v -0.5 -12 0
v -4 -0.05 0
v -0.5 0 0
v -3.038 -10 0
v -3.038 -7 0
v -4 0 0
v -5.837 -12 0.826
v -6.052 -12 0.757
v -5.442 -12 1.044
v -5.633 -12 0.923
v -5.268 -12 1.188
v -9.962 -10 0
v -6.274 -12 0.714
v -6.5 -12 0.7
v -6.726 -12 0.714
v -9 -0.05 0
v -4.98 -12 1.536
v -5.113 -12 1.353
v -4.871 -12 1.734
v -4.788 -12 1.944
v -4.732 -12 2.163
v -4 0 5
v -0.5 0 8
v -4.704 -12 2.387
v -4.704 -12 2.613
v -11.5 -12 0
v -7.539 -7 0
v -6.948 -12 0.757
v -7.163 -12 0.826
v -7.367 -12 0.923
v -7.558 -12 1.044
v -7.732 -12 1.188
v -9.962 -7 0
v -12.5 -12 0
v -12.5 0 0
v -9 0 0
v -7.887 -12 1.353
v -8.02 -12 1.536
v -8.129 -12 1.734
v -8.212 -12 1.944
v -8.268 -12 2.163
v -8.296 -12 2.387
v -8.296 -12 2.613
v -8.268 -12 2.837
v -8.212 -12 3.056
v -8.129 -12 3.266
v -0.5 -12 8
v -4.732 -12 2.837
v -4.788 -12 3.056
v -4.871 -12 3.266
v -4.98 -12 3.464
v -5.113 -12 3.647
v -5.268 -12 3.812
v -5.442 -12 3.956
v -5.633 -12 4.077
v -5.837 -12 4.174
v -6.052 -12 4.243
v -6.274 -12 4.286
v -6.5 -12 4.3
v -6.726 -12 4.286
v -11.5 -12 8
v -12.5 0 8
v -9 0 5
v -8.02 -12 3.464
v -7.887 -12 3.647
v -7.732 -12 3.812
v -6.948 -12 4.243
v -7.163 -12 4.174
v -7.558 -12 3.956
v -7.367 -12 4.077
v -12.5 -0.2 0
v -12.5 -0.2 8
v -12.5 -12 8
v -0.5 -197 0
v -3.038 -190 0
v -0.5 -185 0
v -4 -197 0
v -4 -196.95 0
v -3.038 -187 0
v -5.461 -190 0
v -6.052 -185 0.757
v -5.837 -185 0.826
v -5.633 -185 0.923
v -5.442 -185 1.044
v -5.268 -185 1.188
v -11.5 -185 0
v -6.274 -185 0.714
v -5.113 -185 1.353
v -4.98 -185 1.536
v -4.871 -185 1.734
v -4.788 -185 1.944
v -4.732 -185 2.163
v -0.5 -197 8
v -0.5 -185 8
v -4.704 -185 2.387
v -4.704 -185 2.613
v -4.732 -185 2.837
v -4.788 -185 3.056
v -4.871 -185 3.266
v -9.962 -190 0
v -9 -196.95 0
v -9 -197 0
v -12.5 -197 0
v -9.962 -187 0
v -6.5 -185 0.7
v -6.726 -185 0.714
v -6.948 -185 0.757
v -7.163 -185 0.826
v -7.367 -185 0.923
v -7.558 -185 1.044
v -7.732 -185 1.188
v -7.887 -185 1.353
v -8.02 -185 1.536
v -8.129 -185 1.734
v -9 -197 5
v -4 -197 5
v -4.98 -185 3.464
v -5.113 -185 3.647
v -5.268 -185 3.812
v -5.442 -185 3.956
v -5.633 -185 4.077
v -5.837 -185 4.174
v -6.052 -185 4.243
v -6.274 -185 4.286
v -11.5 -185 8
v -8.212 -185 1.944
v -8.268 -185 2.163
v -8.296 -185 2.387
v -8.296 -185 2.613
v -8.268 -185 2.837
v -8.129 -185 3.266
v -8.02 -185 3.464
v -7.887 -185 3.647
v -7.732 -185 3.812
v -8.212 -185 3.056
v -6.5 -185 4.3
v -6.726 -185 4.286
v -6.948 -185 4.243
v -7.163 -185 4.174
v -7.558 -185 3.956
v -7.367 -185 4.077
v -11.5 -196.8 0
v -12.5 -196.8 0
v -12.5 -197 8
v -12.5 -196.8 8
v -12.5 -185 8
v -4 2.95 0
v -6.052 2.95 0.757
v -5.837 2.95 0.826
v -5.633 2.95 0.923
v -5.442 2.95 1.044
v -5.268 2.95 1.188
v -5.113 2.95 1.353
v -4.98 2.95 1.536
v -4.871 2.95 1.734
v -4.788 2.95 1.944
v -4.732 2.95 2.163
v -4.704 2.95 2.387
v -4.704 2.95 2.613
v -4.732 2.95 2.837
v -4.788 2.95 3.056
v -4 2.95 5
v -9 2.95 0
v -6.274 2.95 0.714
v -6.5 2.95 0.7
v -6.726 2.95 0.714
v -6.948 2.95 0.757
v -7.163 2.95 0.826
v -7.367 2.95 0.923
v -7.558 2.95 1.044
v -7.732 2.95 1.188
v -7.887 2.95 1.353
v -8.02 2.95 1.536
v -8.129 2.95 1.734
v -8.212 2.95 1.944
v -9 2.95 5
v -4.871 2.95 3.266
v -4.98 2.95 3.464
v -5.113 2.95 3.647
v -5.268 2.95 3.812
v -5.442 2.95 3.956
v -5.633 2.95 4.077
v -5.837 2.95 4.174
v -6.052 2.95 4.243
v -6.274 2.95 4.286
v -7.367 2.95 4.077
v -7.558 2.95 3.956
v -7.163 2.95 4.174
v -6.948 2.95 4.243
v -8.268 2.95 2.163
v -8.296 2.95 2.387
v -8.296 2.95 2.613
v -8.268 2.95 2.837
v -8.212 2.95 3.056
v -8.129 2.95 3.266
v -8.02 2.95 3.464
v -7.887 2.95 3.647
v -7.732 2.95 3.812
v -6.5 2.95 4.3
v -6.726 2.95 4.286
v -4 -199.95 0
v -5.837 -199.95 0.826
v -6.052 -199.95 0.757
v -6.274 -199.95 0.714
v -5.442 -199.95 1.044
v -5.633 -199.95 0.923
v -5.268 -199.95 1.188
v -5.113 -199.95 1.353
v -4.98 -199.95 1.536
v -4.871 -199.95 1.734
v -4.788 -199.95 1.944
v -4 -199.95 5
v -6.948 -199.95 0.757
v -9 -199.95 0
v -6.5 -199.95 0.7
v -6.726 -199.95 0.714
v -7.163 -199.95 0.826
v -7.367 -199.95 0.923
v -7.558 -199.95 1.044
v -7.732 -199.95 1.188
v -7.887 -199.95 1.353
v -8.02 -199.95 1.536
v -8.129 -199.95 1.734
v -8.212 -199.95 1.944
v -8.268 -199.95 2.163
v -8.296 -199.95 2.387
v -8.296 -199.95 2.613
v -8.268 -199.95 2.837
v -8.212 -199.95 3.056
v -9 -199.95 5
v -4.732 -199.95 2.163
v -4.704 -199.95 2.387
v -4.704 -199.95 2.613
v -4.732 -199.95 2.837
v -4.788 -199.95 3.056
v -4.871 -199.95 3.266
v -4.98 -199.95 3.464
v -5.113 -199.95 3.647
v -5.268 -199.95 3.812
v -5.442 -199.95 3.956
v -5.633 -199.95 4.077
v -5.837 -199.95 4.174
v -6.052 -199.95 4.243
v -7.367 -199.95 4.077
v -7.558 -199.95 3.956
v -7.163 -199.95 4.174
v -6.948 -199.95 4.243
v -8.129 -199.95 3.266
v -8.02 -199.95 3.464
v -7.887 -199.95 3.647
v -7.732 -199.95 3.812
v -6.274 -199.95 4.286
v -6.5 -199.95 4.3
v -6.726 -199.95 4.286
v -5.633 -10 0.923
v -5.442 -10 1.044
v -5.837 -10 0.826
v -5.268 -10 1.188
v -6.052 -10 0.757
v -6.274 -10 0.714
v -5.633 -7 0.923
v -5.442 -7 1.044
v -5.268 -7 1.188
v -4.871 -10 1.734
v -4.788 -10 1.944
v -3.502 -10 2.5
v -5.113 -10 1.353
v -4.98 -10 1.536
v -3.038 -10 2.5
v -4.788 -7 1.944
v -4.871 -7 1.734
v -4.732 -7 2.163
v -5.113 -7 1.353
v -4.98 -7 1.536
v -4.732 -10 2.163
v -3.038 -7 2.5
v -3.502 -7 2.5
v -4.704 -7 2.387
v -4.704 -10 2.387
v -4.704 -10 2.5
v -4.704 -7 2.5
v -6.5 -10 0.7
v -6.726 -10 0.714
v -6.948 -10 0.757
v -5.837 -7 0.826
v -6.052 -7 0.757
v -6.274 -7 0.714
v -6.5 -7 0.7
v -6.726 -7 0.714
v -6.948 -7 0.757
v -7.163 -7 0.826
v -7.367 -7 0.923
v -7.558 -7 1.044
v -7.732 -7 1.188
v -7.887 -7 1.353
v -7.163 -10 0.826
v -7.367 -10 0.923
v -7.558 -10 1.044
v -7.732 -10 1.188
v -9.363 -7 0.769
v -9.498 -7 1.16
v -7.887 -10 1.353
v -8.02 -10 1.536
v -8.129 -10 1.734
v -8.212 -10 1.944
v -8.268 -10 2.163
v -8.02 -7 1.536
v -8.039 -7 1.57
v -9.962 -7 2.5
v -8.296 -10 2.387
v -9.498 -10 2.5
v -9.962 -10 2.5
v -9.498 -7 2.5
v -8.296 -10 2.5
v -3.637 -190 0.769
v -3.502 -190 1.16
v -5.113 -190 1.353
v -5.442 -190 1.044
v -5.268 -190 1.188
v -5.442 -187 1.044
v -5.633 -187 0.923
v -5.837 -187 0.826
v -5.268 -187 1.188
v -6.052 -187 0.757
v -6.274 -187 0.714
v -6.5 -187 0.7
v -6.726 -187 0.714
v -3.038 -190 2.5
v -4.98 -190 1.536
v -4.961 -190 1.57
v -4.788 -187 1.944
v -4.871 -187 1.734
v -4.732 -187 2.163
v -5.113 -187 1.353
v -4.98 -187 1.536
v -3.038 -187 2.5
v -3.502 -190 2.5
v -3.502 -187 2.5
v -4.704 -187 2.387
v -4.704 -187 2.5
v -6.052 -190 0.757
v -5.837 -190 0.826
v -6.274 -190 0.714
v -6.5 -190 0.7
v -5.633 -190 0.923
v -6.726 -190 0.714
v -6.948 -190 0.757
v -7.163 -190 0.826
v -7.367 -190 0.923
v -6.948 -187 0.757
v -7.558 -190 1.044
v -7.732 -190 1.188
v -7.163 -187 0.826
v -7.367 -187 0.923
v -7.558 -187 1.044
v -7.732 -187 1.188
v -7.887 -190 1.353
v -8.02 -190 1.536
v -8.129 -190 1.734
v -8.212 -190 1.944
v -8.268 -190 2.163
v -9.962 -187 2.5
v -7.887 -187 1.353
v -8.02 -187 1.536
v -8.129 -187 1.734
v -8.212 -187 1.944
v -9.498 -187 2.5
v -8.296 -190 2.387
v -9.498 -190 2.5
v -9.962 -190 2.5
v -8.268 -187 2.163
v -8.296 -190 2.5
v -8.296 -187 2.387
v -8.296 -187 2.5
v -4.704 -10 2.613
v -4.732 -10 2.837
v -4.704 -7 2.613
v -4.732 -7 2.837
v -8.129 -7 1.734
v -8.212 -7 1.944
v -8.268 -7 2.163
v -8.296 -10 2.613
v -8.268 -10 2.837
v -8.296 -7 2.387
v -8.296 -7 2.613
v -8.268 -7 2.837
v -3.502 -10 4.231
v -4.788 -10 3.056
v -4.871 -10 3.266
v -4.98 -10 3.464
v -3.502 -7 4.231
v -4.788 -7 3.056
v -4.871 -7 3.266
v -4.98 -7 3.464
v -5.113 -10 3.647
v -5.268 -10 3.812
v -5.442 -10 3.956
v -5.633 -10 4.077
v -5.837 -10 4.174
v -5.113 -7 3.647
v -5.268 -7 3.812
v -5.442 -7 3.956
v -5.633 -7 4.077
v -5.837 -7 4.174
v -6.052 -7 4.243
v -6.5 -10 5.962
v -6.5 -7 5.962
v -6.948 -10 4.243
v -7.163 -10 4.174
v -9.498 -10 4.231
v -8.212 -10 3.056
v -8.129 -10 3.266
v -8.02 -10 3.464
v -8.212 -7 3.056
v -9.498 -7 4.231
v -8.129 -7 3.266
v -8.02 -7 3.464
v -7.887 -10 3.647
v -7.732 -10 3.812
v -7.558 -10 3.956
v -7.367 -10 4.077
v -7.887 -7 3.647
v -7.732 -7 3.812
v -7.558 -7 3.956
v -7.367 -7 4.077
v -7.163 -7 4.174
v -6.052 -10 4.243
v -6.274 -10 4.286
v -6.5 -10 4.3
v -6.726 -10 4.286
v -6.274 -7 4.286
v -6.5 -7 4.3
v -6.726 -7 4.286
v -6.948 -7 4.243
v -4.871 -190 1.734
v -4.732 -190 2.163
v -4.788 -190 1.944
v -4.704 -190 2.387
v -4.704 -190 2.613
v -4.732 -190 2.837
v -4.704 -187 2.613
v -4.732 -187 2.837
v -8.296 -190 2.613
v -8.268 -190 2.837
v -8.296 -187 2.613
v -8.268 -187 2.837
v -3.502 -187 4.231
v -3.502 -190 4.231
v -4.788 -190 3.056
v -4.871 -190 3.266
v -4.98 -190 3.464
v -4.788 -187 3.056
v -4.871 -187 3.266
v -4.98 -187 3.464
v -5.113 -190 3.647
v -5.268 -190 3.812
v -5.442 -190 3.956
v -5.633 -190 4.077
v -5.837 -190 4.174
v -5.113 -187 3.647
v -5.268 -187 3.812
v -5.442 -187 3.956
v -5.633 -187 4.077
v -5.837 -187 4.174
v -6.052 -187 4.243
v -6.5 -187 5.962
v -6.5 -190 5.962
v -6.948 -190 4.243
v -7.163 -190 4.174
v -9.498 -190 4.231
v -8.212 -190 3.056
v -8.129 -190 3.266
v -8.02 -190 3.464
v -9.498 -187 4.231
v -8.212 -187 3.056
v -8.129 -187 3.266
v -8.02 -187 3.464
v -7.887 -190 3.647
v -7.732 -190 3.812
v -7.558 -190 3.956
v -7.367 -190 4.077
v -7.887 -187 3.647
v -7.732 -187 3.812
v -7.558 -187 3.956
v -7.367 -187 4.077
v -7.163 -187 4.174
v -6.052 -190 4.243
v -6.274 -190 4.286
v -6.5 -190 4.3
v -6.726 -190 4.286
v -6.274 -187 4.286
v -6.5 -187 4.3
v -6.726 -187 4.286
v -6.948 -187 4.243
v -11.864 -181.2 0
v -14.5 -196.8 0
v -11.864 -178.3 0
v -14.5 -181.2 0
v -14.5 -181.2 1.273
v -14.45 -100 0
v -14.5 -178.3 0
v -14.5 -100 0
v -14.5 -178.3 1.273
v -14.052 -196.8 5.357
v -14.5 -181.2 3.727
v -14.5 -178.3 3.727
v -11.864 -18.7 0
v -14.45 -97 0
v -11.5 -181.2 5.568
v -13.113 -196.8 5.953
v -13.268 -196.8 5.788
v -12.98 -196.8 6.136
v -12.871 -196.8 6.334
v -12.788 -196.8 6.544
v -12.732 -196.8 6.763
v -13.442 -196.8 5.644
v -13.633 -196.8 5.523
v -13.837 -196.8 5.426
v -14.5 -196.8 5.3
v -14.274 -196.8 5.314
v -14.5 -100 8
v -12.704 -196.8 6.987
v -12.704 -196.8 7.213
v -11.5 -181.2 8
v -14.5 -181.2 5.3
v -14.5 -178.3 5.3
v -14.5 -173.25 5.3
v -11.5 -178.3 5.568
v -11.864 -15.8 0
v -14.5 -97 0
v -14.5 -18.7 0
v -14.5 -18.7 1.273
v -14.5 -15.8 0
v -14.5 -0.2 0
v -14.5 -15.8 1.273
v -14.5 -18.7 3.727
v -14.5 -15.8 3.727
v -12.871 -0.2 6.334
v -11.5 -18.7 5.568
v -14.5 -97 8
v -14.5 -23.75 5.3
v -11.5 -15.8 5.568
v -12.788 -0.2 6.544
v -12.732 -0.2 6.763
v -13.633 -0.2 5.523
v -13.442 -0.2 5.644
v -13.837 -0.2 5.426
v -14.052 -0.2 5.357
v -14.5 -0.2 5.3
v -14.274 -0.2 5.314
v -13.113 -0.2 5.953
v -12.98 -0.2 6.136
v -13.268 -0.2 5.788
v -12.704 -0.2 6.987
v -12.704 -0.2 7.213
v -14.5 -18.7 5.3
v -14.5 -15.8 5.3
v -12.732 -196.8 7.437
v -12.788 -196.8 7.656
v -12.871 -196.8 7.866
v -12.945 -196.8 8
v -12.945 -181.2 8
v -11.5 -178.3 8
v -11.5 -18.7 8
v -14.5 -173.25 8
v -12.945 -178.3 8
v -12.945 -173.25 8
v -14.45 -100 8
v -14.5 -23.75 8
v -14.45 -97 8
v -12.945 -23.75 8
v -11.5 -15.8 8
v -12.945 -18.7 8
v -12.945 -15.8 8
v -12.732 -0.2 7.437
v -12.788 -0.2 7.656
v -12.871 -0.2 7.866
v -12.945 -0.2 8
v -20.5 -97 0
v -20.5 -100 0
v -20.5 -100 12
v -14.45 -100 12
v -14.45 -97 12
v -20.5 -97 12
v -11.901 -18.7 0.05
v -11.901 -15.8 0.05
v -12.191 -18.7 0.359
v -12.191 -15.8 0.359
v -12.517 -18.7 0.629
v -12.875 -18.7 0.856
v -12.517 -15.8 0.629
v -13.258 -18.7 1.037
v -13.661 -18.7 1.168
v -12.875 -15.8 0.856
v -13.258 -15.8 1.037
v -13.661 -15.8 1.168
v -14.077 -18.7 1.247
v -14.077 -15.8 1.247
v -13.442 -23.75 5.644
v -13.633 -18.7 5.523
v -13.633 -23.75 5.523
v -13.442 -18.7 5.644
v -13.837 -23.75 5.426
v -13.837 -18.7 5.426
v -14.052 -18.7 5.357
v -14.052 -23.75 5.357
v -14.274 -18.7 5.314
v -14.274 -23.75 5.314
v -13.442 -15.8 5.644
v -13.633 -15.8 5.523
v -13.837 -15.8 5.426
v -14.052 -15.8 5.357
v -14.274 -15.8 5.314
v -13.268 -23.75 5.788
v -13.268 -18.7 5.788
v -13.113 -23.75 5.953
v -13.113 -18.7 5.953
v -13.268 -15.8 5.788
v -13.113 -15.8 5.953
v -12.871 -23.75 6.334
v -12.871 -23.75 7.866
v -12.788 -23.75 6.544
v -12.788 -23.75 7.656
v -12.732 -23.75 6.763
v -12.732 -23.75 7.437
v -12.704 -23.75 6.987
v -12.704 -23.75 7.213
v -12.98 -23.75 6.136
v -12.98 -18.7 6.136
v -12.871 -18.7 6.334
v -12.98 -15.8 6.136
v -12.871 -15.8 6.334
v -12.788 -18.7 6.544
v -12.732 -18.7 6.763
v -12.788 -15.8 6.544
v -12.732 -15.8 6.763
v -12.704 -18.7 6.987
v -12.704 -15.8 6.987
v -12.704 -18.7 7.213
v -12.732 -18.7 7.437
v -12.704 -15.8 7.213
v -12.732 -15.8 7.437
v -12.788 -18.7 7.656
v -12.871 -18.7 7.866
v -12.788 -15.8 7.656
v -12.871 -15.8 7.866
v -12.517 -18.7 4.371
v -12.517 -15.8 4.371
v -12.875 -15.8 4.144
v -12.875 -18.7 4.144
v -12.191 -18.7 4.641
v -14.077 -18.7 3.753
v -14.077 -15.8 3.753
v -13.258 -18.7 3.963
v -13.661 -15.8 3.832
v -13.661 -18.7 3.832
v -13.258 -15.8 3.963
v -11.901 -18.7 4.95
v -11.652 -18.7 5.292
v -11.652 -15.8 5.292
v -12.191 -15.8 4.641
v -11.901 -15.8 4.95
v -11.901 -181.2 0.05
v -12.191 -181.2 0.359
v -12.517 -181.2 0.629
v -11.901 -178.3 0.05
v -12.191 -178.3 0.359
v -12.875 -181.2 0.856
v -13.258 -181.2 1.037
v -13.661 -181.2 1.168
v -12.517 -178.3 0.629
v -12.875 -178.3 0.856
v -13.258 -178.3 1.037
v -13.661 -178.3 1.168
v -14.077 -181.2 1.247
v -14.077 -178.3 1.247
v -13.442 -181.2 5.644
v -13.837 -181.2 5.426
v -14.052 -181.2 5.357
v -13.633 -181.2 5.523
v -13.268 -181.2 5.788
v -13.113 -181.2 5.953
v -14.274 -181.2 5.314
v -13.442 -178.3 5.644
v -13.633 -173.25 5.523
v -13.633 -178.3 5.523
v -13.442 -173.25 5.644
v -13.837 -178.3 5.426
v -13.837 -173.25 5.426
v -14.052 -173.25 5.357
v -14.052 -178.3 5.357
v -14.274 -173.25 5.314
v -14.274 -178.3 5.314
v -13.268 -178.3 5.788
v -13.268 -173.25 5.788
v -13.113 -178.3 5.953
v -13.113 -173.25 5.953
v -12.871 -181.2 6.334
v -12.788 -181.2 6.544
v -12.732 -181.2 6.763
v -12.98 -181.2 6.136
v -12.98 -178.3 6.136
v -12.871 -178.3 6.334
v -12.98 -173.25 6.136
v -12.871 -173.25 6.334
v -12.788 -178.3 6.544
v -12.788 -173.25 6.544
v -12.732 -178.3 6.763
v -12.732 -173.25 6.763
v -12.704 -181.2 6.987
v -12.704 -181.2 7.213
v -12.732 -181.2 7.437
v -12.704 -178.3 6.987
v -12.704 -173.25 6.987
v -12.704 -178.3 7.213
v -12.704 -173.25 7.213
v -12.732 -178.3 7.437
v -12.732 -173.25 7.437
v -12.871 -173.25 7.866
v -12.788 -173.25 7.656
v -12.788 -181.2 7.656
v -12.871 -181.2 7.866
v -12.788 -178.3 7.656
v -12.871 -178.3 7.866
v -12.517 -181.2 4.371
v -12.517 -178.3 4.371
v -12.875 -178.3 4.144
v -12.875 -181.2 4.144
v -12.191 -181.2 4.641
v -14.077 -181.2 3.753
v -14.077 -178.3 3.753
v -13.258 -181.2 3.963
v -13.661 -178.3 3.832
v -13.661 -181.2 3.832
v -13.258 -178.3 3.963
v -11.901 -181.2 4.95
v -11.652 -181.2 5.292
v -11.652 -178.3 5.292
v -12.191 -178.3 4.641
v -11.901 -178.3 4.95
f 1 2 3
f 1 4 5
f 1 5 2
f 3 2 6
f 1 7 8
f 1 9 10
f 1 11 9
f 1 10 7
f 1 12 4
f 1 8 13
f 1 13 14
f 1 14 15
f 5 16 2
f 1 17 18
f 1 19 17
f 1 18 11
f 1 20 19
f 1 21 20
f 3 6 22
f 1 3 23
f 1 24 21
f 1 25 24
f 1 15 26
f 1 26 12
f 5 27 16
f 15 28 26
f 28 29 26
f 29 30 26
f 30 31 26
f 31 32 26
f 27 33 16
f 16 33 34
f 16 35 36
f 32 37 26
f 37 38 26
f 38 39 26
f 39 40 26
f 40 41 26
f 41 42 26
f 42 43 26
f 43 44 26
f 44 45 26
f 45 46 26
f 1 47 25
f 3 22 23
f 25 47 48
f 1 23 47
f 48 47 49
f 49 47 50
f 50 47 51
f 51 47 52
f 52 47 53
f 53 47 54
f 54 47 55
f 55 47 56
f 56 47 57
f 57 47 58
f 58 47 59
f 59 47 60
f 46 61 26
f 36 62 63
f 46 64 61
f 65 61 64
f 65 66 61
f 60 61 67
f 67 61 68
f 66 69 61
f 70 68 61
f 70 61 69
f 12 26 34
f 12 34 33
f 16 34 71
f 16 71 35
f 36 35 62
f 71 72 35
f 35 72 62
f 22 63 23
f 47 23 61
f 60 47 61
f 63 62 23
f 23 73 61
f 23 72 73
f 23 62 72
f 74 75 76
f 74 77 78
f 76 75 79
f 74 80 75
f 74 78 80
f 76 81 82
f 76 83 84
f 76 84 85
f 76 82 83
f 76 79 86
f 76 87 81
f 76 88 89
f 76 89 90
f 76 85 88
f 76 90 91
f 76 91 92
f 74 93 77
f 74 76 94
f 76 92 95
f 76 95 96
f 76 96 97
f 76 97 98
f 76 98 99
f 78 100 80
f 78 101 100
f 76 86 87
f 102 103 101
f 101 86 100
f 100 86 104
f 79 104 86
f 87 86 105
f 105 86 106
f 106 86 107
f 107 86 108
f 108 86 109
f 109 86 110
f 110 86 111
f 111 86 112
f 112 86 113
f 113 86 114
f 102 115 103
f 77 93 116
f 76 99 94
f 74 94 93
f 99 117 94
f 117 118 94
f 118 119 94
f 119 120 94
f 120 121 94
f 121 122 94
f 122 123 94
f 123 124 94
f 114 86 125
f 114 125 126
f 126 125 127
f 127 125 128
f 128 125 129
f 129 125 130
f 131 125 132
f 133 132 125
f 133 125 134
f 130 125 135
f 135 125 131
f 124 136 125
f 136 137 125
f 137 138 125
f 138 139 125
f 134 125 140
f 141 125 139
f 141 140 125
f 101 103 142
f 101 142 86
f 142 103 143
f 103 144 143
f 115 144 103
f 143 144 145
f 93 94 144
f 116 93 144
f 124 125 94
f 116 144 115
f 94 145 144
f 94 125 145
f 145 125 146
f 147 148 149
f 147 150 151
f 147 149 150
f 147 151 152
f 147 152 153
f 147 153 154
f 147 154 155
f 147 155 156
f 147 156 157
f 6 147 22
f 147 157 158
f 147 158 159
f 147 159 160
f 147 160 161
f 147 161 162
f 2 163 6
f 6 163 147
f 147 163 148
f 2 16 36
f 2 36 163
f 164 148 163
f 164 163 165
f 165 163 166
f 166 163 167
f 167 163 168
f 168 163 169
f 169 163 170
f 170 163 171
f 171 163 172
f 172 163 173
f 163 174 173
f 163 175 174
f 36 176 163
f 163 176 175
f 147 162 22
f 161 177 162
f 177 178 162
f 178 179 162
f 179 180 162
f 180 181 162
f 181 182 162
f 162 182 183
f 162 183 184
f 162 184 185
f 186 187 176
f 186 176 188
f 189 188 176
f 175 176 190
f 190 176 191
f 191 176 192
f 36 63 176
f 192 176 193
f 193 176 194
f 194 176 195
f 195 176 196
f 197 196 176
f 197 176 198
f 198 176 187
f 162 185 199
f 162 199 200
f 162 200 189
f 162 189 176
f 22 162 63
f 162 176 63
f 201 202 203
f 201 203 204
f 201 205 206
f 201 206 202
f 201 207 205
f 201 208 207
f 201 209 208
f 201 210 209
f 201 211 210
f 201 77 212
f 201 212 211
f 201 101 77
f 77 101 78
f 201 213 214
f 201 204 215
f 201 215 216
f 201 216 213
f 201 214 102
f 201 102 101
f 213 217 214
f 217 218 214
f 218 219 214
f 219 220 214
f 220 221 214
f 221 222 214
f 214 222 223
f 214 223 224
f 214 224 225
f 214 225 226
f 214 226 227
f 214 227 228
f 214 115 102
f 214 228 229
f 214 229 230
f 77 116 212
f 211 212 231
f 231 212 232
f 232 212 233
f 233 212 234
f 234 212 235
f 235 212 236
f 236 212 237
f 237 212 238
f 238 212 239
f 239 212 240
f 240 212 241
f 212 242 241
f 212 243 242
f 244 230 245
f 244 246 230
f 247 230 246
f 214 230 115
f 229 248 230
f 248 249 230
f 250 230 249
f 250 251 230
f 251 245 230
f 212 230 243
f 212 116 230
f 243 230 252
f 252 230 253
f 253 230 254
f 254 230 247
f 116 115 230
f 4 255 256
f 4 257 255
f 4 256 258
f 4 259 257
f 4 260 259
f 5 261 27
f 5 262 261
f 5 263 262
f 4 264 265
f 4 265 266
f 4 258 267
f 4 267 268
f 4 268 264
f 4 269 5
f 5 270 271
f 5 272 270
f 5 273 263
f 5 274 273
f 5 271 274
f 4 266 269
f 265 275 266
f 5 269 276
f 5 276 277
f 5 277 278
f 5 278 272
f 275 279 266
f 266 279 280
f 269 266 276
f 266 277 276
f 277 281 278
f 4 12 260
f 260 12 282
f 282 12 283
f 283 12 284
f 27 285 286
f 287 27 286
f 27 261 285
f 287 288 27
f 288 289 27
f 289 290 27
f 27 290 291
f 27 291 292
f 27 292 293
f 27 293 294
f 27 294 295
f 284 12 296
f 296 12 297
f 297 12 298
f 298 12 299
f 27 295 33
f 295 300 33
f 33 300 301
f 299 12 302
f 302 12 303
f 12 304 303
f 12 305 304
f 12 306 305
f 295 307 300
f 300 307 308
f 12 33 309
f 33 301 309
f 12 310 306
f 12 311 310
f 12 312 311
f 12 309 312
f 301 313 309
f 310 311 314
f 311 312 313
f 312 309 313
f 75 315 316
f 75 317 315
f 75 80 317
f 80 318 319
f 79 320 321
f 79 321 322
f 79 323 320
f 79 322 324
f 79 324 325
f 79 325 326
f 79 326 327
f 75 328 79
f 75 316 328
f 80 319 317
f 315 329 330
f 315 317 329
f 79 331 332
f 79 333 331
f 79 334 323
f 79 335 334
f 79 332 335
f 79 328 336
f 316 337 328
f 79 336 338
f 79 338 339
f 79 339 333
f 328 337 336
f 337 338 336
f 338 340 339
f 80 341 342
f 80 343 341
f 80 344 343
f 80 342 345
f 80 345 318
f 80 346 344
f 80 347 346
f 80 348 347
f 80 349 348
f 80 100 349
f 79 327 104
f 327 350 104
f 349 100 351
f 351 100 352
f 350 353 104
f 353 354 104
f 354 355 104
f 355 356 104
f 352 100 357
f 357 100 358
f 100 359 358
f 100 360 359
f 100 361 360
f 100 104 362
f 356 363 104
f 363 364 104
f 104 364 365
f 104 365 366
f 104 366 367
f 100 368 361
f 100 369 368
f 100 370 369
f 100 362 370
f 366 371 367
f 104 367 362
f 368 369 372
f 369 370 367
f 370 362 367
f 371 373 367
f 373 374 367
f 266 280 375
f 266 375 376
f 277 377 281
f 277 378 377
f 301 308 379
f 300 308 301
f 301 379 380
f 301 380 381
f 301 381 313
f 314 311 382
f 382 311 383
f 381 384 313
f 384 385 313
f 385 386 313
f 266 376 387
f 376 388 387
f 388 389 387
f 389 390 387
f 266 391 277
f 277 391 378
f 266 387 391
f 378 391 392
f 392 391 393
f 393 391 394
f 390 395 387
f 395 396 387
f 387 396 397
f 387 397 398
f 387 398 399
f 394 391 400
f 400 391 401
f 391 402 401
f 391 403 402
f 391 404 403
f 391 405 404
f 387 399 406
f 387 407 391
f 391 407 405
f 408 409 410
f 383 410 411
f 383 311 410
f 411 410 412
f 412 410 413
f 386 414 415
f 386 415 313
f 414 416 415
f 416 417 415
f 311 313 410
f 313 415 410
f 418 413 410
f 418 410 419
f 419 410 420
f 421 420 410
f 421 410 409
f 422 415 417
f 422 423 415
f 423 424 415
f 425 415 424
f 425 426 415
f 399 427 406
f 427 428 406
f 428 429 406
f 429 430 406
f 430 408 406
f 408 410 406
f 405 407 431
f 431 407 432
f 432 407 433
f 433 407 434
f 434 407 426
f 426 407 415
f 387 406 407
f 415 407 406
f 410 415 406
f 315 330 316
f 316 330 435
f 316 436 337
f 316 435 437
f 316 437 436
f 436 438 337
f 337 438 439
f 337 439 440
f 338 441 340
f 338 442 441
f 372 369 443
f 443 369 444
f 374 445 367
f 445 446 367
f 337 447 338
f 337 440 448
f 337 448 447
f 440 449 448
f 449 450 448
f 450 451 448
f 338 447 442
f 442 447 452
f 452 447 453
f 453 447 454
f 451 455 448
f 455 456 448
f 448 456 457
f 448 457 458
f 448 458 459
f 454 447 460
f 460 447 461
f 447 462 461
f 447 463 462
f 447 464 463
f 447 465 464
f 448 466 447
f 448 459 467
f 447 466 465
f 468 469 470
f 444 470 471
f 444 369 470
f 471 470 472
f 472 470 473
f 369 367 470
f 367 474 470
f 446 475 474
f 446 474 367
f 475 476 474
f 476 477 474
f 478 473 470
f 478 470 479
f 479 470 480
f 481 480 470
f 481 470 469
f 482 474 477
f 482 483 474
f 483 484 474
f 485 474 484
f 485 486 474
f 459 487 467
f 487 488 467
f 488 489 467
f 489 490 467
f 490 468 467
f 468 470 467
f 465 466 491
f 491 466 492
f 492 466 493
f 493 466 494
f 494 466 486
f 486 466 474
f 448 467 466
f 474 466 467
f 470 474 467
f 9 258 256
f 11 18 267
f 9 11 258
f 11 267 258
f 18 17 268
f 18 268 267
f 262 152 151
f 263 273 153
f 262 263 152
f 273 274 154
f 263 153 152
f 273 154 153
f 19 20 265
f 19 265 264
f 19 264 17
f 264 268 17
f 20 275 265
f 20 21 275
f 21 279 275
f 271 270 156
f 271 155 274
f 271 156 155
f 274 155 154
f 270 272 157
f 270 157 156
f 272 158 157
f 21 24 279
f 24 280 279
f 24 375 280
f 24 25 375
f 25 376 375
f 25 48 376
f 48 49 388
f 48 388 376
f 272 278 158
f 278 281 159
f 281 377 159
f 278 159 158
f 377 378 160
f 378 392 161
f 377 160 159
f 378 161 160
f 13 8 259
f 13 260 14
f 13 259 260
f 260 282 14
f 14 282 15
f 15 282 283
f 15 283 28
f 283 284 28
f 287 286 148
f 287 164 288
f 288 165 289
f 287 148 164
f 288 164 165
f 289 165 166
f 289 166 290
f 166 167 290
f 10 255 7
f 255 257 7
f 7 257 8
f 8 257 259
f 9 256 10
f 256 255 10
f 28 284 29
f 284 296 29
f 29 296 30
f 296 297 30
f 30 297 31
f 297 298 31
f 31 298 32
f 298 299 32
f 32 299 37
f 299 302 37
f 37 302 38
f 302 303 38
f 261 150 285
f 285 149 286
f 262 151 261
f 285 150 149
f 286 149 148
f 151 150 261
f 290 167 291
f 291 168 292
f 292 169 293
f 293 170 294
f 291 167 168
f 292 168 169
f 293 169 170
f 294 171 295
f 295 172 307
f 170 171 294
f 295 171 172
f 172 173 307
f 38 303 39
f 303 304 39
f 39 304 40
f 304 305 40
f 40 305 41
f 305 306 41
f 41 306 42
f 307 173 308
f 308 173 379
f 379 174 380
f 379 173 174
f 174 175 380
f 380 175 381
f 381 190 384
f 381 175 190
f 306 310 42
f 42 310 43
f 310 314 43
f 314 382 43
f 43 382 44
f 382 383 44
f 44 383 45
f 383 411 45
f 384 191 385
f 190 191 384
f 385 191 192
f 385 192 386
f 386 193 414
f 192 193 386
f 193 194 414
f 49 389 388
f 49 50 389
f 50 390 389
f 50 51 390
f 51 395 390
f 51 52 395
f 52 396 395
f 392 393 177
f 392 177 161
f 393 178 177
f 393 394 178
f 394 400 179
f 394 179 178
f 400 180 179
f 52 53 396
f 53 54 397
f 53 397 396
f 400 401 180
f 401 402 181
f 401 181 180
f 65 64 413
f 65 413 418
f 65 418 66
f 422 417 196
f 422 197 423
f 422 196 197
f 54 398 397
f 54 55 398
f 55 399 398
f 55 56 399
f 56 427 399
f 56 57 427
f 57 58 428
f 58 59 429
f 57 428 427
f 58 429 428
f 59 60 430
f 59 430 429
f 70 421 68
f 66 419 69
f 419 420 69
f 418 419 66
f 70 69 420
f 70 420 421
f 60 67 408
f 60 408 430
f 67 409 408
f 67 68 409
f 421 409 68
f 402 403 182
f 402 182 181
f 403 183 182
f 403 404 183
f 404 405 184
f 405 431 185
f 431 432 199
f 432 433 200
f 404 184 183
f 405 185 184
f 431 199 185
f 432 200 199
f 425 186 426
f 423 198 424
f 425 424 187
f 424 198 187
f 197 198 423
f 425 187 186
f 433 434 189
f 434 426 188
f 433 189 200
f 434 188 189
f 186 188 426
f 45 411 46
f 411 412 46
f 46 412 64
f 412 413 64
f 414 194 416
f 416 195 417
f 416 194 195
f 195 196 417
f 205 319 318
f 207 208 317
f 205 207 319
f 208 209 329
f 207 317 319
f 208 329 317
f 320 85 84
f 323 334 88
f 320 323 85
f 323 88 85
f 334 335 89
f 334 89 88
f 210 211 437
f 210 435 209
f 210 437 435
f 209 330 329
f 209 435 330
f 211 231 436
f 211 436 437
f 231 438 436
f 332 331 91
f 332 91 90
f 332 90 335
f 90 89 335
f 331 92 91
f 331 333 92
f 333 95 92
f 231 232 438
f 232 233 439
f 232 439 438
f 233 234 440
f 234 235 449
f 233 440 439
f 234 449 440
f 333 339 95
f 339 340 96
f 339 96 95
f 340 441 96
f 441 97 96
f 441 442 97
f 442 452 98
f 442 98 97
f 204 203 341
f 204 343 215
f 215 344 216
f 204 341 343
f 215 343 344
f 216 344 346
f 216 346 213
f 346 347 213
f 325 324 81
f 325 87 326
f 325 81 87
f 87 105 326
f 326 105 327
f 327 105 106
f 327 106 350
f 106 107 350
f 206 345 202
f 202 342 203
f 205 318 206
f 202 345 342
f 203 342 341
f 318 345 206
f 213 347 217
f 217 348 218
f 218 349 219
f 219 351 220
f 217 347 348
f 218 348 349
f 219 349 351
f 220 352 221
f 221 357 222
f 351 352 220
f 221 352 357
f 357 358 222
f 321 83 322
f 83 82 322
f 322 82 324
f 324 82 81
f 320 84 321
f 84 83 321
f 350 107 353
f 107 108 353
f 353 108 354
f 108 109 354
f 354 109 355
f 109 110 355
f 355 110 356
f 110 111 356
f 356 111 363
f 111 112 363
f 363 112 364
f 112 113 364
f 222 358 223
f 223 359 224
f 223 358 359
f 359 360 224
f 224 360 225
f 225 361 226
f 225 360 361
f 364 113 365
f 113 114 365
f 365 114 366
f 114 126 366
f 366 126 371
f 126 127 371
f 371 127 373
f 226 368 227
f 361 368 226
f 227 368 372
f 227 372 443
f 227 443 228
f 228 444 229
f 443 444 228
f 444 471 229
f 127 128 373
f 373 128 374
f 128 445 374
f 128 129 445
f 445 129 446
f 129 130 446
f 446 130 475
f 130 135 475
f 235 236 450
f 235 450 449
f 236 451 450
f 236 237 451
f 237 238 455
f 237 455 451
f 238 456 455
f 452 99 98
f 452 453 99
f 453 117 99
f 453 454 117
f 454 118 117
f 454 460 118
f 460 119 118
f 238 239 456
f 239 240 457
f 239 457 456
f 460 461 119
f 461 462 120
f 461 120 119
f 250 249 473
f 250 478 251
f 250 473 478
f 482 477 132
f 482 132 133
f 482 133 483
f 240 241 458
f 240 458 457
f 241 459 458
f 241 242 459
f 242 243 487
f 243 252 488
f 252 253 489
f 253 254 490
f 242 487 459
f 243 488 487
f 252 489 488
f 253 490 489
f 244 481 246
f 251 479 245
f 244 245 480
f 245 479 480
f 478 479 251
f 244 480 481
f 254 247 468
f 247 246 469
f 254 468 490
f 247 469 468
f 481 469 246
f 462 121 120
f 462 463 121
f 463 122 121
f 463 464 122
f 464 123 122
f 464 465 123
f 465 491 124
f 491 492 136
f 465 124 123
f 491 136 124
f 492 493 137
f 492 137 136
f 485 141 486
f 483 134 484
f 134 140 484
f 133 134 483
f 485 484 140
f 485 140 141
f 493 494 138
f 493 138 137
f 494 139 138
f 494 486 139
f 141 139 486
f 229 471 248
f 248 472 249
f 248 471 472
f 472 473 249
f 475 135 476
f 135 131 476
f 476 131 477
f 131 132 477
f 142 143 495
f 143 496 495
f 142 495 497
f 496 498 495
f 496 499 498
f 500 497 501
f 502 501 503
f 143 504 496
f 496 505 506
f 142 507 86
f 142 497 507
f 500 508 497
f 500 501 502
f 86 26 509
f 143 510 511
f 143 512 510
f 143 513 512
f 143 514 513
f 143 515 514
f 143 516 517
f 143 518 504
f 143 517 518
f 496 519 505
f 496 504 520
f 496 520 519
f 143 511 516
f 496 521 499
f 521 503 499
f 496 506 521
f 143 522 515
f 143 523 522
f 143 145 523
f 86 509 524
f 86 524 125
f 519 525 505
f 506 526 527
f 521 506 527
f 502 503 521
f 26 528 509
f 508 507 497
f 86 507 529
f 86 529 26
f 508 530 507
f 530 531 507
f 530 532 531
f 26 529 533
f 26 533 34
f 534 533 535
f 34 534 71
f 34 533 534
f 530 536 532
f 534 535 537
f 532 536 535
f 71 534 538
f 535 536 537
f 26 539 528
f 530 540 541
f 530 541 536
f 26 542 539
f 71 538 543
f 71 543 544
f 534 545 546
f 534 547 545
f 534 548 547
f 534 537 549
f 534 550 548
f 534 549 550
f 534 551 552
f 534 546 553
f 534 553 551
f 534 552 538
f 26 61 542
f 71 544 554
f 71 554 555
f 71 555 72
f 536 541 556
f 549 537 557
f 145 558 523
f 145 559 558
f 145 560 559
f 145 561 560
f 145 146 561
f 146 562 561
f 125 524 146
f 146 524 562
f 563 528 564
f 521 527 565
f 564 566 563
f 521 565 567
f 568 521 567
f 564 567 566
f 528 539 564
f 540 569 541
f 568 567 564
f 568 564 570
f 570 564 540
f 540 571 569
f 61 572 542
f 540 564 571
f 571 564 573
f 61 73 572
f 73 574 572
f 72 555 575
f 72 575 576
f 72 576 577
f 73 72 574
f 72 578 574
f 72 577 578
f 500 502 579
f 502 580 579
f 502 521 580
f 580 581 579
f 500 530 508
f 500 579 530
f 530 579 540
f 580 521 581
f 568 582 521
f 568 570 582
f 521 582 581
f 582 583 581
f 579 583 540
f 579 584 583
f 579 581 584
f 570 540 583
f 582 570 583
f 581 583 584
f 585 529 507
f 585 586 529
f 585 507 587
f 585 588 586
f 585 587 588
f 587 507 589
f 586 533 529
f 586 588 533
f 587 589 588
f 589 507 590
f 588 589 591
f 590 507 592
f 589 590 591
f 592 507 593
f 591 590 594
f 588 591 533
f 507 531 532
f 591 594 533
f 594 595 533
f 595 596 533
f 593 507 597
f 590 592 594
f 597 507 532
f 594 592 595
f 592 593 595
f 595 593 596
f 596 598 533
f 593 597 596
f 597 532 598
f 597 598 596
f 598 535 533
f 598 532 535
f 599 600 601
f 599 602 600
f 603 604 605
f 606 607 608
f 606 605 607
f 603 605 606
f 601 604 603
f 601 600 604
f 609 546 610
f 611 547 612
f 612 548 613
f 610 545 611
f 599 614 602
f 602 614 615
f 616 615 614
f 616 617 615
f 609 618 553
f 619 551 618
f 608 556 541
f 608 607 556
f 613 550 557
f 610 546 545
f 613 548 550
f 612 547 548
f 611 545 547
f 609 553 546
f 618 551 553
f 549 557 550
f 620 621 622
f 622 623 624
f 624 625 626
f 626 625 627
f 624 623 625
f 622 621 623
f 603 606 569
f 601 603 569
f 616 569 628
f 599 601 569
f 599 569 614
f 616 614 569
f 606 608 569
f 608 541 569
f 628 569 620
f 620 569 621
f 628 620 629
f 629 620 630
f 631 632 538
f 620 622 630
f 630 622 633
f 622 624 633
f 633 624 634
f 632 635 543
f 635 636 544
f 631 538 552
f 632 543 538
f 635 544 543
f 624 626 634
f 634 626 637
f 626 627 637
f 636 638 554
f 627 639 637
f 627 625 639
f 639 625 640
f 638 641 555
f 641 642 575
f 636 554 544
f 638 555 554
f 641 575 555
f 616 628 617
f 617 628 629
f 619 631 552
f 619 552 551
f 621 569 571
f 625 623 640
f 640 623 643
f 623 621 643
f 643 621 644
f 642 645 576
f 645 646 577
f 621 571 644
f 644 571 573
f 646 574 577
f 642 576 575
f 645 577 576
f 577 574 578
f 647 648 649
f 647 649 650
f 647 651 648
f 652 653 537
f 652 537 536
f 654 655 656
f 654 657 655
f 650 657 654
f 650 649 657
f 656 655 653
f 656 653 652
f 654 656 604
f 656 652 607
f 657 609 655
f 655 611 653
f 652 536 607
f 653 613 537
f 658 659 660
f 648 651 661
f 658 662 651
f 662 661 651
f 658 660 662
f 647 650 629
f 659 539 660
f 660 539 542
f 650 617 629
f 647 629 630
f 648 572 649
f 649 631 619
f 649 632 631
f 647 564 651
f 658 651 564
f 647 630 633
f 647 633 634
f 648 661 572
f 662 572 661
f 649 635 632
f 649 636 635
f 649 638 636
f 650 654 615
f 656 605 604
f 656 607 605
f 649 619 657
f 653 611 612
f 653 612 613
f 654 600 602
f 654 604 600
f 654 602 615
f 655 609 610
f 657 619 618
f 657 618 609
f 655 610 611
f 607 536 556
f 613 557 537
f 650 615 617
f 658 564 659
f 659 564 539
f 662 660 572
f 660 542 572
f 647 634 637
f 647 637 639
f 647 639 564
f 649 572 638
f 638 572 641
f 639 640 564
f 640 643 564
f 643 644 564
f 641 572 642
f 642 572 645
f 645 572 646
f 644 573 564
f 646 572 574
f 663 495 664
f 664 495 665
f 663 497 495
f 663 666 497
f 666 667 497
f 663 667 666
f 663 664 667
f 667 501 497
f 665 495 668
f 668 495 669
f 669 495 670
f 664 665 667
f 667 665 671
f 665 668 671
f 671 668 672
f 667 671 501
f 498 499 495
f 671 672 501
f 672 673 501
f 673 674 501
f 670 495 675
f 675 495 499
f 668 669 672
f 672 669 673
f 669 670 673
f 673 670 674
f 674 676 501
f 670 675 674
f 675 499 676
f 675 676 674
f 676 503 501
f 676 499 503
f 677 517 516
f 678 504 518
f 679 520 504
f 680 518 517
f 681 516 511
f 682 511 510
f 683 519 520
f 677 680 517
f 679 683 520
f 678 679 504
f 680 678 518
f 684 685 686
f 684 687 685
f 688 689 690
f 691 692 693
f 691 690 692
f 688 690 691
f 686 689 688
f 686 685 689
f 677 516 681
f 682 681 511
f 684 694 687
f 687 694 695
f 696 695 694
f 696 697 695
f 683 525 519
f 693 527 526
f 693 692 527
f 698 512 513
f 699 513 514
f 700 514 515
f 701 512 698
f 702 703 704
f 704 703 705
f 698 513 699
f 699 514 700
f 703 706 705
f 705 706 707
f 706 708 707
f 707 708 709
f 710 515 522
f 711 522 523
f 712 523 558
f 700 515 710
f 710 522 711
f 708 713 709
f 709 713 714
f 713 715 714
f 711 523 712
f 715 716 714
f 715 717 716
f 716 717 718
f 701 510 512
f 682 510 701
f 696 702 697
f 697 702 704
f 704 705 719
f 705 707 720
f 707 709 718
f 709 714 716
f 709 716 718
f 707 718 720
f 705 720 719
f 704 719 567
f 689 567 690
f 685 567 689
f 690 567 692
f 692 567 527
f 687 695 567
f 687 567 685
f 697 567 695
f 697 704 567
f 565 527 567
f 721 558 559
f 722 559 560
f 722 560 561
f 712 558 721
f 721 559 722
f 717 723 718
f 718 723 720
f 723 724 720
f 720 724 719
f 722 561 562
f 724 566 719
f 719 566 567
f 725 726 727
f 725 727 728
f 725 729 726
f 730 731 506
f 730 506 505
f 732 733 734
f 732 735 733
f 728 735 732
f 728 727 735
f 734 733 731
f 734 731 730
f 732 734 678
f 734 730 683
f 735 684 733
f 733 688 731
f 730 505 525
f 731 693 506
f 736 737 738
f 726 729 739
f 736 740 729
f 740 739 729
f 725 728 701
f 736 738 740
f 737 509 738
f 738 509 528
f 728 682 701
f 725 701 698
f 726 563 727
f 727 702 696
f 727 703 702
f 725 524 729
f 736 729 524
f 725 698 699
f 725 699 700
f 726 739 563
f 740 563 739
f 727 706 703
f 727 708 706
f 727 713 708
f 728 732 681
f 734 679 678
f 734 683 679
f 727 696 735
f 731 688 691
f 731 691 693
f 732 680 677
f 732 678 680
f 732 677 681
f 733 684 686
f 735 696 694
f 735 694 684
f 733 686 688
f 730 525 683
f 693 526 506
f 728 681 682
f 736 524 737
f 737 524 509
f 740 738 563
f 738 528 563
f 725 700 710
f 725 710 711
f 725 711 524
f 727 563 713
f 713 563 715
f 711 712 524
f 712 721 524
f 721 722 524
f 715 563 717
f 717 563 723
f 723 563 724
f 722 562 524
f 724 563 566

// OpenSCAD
$fn = 50;

difference() {
	union() {
		translate(v = [0, 0, 0]) {
			rotate(a = [0, 0, 0]) {
				difference() {
					union() {
						translate(v = [0, 0, 2.5]) {
							rotate(a = [0, -90, 0]) {
								difference() {
									union() {
										translate(v = [0, 0, 0]) {
											rotate(a = [0, 0, 0]) {
												difference() {
													union() {
														translate(v = [-2.5, -12.0, 0.5]) {
															cube(size = [8.0, 12.0, 12.0]);
														}
														translate(v = [-2.5, -0.05, 4.0]) {
															cube(size = [5.0, 3.0, 5.0]);
														}
													}
													union() {
														translate(v = [0, -7.0, 6.5]) {
															rotate(a = [90, 0, 0]) {
																difference() {
																	union() {
																		translate(v = [-20.0, -3.4619999999999997, 0]) {
																			cube(size = [20, 6.9239999999999995, 3]);
																		}
																		linear_extrude(height = 3) {
																			polygon(points = [[3.4619999999999997, 0.0], [1.7310000000000003, 2.9981799479017264], [-1.7309999999999992, 2.9981799479017264], [-3.4619999999999997, 4.2397272186481365e-16], [-1.7310000000000014, -2.998179947901726], [1.7309999999999977, -2.9981799479017277]]);
																		}
																	}
																	union();
																}
															}
														}
														translate(v = [0, 3.0500000000000003, 6.5]) {
															rotate(a = [90, 0, 0]) {
																cylinder(h = 22.95, r = 1.8);
															}
														}
													}
												}
											}
										}
										translate(v = [0, -197.0, 13.0]) {
											rotate(a = [180, 0, 0]) {
												difference() {
													union() {
														translate(v = [-2.5, -12.0, 0.5]) {
															cube(size = [8.0, 12.0, 12.0]);
														}
														translate(v = [-2.5, -0.05, 4.0]) {
															cube(size = [5.0, 3.0, 5.0]);
														}
													}
													union() {
														translate(v = [0, -7.0, 6.5]) {
															rotate(a = [90, 0, 0]) {
																difference() {
																	union() {
																		translate(v = [-20.0, -3.4619999999999997, 0]) {
																			cube(size = [20, 6.9239999999999995, 3]);
																		}
																		linear_extrude(height = 3) {
																			polygon(points = [[3.4619999999999997, 0.0], [1.7310000000000003, 2.9981799479017264], [-1.7309999999999992, 2.9981799479017264], [-3.4619999999999997, 4.2397272186481365e-16], [-1.7310000000000014, -2.998179947901726], [1.7309999999999977, -2.9981799479017277]]);
																		}
																	}
																	union();
																}
															}
														}
														translate(v = [0, 3.0500000000000003, 6.5]) {
															rotate(a = [90, 0, 0]) {
																cylinder(h = 22.95, r = 1.8);
															}
														}
													}
												}
											}
										}
										translate(v = [-2.5, -196.8, 11.5]) {
											cube(size = [8.0, 196.6, 3.0]);
										}
										translate(v = [-2.5, -100.0, 14.45]) {
											cube(size = [12.0, 3.0, 6.05]);
										}
									}
									union() {
										translate(v = [-4.600000000500003, 0.1, 14.5]) {
											rotate(a = [90, 0, 0]) {
												cylinder(h = 23.85, r = 1.8);
											}
										}
										translate(v = [-4.600000000500003, -15.8, 14.5]) {
											rotate(a = [90, 0, 0]) {
												cylinder(h = 2.9, r = 3.3735);
											}
										}
										translate(v = [4.600000000500003, 0.1, 14.5]) {
											rotate(a = [90, 0, 0]) {
												cylinder(h = 23.85, r = 1.8);
											}
										}
										translate(v = [4.600000000500003, -15.8, 14.5]) {
											rotate(a = [90, 0, 0]) {
												cylinder(h = 2.9, r = 3.3735);
											}
										}
										translate(v = [-4.600000000500003, -197.1, 14.5]) {
											rotate(a = [-90, 0, 0]) {
												cylinder(h = 23.85, r = 1.8);
											}
										}
										translate(v = [-4.600000000500003, -181.2, 14.5]) {
											rotate(a = [-90, 0, 0]) {
												cylinder(h = 2.9, r = 3.3735);
											}
										}
										translate(v = [4.600000000500003, -197.1, 14.5]) {
											rotate(a = [-90, 0, 0]) {
												cylinder(h = 23.85, r = 1.8);
											}
										}
										translate(v = [4.600000000500003, -181.2, 14.5]) {
											rotate(a = [-90, 0, 0]) {
												cylinder(h = 2.9, r = 3.3735);
											}
										}
									}
								}
							}
						}
					}
					union();
				}
			}
		}
	}
	union();
}
